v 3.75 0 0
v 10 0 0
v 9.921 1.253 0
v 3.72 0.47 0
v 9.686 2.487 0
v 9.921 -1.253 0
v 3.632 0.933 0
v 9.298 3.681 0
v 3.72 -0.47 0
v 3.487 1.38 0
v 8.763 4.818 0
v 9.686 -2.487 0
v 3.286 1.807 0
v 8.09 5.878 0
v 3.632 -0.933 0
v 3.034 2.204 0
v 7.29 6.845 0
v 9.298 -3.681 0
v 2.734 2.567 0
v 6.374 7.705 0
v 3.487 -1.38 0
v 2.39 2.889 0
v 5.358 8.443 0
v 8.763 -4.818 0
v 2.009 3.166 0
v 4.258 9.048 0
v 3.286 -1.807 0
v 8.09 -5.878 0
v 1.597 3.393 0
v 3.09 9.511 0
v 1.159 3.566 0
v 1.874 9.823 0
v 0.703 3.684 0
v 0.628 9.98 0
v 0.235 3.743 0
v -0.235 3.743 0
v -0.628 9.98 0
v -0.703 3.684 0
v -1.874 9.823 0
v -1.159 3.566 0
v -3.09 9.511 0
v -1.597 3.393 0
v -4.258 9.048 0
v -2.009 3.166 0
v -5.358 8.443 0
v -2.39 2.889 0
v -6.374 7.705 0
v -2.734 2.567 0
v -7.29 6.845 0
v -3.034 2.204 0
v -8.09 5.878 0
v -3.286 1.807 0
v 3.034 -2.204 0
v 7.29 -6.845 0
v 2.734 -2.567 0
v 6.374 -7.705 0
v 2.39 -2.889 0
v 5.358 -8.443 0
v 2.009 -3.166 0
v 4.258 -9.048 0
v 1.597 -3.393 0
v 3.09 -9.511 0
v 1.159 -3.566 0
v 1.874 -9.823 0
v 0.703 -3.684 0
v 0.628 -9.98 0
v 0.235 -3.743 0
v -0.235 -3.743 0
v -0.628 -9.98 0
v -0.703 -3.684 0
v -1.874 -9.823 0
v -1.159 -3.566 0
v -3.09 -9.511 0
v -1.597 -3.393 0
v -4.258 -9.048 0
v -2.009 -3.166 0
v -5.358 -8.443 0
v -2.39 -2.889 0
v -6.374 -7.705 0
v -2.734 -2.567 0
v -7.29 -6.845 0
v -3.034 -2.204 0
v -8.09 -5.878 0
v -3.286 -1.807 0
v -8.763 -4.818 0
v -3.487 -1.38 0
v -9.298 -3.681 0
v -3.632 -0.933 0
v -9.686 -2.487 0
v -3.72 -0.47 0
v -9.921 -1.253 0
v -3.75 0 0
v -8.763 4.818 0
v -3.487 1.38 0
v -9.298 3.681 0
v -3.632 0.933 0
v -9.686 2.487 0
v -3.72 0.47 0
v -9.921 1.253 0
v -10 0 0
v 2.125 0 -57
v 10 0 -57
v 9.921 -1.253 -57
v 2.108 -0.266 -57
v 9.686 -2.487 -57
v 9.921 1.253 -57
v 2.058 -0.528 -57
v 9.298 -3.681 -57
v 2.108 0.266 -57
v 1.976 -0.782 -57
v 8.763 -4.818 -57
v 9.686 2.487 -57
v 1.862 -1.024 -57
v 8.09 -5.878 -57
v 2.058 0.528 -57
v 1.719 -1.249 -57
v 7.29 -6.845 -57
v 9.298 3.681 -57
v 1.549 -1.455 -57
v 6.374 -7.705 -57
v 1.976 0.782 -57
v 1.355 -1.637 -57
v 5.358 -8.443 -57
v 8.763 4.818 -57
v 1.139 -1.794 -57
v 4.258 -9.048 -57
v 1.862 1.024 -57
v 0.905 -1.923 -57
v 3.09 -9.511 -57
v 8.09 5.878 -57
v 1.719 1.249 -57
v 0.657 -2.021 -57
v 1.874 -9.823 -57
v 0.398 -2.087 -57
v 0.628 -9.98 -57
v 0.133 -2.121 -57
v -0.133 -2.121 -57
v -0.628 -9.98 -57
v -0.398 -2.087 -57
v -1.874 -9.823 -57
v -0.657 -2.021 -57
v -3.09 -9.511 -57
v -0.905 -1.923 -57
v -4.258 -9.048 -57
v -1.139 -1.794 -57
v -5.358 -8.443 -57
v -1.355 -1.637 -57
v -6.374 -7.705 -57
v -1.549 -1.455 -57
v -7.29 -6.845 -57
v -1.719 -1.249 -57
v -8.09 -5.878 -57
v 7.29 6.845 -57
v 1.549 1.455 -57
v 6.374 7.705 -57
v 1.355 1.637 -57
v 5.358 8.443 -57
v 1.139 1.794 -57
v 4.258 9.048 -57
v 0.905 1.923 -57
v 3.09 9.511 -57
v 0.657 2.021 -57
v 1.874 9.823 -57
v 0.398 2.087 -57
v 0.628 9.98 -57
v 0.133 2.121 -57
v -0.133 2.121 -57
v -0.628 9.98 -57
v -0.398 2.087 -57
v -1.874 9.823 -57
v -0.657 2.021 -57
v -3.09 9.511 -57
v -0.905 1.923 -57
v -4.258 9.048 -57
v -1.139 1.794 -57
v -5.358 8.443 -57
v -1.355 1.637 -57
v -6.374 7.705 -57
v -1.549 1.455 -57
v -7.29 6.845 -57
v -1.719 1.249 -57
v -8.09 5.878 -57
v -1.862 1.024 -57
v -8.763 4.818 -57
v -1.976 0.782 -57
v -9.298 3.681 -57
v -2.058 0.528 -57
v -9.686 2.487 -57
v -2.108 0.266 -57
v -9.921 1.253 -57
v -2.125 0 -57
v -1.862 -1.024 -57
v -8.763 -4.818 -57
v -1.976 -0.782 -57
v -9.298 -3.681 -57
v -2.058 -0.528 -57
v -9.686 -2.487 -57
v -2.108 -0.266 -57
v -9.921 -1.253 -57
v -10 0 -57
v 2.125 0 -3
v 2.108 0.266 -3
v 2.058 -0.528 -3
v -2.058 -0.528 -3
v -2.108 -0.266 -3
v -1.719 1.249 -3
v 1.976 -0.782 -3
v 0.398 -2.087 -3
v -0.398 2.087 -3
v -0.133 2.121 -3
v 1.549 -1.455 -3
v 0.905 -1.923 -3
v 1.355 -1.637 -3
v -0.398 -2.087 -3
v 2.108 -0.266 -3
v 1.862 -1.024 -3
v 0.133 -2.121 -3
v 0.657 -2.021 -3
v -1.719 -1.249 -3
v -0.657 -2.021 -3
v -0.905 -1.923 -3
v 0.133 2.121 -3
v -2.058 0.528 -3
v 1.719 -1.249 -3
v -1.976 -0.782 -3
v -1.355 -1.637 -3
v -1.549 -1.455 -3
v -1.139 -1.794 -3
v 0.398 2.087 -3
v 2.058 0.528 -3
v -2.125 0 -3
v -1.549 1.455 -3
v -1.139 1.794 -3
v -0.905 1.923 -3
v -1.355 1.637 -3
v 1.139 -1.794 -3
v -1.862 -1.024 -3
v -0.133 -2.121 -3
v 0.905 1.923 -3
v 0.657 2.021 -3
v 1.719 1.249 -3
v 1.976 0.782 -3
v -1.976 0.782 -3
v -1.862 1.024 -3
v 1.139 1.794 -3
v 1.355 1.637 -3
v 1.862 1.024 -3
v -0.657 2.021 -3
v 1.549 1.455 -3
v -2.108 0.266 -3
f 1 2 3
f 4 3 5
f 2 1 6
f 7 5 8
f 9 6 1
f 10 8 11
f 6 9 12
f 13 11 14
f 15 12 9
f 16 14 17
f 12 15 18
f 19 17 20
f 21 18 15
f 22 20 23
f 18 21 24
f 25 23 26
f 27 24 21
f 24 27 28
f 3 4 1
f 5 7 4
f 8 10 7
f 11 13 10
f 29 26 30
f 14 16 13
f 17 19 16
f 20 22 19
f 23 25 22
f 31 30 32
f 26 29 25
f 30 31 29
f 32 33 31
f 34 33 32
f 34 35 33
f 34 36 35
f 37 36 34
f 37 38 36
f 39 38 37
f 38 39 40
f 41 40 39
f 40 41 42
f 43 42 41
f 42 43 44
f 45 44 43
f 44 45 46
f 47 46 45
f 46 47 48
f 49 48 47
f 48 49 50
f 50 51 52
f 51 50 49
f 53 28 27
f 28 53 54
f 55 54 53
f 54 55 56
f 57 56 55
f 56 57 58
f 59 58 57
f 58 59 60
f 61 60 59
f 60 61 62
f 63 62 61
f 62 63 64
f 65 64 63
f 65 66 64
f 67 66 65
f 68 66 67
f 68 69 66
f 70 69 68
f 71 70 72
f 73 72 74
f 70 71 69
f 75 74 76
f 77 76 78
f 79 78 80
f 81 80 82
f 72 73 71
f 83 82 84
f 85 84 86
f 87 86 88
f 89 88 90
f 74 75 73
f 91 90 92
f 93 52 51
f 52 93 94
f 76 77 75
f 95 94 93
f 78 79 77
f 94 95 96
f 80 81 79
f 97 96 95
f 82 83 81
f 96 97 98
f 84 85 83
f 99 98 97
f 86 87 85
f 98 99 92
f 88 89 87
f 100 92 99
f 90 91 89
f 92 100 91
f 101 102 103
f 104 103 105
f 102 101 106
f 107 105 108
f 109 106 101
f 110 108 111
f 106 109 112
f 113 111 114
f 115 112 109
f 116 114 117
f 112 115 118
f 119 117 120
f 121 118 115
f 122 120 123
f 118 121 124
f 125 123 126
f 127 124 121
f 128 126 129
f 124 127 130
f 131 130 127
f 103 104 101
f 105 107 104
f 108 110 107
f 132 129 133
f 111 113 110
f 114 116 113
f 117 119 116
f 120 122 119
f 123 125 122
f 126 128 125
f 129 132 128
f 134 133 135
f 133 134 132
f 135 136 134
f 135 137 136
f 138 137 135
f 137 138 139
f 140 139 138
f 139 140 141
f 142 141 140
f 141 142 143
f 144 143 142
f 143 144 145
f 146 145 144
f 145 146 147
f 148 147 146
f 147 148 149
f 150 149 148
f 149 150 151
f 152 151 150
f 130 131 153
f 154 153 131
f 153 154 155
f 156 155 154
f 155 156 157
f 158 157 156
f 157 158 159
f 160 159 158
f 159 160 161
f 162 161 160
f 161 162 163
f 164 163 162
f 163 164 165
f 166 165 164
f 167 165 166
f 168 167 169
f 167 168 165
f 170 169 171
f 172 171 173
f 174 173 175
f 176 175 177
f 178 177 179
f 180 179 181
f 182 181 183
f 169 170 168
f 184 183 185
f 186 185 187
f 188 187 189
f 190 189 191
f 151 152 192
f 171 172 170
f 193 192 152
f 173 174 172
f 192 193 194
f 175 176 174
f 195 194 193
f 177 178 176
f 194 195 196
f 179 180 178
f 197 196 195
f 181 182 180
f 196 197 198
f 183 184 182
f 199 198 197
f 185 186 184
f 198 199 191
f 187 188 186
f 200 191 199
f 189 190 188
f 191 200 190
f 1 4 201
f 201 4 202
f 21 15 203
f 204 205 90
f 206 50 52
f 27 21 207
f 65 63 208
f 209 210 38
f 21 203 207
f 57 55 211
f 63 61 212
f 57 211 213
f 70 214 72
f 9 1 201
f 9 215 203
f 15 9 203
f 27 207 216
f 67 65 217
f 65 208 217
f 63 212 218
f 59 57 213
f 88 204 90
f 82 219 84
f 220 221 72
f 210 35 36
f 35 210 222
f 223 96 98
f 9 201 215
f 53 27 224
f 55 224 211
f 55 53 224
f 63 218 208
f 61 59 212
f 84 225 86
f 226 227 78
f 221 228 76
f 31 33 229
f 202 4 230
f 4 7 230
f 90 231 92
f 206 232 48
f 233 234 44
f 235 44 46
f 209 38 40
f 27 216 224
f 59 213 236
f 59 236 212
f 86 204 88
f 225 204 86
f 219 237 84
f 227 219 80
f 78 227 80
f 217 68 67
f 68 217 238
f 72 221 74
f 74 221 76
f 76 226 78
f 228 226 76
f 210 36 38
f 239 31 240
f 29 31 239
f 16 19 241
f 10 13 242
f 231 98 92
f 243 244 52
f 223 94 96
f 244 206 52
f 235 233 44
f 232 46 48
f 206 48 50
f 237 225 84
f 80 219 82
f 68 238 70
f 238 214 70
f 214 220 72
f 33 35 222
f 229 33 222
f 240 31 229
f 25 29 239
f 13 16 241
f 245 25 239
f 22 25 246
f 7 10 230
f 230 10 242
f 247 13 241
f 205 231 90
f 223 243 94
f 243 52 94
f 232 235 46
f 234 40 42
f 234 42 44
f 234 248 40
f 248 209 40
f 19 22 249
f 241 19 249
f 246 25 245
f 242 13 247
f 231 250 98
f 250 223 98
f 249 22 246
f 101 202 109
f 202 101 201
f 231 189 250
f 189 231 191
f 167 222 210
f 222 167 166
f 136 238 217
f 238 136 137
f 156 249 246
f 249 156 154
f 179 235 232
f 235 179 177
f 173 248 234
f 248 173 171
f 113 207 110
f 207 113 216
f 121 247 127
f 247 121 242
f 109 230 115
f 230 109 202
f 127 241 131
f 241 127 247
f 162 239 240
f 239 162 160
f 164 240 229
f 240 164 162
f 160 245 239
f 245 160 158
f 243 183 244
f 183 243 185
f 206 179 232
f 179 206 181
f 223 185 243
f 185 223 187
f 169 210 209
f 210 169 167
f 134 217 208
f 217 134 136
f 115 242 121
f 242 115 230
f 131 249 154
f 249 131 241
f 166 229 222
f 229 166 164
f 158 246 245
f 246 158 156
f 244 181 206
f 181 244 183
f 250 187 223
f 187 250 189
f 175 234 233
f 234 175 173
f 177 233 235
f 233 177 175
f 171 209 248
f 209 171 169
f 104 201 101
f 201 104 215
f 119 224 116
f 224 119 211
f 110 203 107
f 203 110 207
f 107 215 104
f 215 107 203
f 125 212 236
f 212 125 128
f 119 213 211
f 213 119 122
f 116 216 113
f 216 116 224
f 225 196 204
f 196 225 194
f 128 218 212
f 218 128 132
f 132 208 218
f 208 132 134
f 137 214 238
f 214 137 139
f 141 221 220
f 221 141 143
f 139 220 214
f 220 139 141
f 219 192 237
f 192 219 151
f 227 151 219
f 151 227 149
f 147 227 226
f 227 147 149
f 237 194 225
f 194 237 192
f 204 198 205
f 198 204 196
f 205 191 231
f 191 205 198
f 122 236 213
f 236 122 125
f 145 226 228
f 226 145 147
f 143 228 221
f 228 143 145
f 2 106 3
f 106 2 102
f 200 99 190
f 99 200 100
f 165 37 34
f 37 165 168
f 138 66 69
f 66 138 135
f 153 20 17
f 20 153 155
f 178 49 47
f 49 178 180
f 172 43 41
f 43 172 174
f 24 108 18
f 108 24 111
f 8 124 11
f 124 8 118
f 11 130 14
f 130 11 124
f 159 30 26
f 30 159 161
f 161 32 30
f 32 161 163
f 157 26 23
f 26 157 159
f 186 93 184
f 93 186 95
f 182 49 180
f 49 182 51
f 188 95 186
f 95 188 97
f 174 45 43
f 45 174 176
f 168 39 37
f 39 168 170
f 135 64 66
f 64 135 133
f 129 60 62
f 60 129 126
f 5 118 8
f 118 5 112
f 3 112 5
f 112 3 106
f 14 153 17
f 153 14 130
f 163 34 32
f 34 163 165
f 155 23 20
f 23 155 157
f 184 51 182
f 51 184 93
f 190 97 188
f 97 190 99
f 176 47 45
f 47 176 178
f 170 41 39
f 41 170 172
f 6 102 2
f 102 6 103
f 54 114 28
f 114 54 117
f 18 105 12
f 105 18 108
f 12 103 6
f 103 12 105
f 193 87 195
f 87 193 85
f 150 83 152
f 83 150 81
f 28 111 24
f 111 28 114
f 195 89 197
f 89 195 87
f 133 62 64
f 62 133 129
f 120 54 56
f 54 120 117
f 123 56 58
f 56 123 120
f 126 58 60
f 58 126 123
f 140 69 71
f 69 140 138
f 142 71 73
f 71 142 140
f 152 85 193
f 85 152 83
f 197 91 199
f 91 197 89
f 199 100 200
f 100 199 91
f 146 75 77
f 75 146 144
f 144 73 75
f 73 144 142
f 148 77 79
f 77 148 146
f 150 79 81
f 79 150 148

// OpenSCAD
$fn = 50;


difference() {
	union() {
		translate(v = [0, 0, -57.0000000000]) {
			cylinder(h = 57, r = 10.0000000000);
		}
		cylinder(h = 0, r = 19.0000000000);
	}
	union() {
		translate(v = [0, 0, 0]) {
			rotate(a = [0, 0, 0]) {
				difference() {
					union() {
						#translate(v = [0, 0, -57.0000000000]) {
							cylinder(h = 57, r = 2.0000000000);
						}
						#translate(v = [0, 0, -3]) {
							cylinder(h = 3, r = 10.0000000000, r1 = 2.1250000000, r2 = 3.7500000000);
						}
						#translate(v = [0, 0, -57.0000000000]) {
							cylinder(h = 57, r = 2.1250000000);
						}
						#translate(v = [0, 0, -57.0000000000]) {
							cylinder(h = 57, r = 2.0000000000);
						}
					}
					union();
				}
			}
		}
	}
}
